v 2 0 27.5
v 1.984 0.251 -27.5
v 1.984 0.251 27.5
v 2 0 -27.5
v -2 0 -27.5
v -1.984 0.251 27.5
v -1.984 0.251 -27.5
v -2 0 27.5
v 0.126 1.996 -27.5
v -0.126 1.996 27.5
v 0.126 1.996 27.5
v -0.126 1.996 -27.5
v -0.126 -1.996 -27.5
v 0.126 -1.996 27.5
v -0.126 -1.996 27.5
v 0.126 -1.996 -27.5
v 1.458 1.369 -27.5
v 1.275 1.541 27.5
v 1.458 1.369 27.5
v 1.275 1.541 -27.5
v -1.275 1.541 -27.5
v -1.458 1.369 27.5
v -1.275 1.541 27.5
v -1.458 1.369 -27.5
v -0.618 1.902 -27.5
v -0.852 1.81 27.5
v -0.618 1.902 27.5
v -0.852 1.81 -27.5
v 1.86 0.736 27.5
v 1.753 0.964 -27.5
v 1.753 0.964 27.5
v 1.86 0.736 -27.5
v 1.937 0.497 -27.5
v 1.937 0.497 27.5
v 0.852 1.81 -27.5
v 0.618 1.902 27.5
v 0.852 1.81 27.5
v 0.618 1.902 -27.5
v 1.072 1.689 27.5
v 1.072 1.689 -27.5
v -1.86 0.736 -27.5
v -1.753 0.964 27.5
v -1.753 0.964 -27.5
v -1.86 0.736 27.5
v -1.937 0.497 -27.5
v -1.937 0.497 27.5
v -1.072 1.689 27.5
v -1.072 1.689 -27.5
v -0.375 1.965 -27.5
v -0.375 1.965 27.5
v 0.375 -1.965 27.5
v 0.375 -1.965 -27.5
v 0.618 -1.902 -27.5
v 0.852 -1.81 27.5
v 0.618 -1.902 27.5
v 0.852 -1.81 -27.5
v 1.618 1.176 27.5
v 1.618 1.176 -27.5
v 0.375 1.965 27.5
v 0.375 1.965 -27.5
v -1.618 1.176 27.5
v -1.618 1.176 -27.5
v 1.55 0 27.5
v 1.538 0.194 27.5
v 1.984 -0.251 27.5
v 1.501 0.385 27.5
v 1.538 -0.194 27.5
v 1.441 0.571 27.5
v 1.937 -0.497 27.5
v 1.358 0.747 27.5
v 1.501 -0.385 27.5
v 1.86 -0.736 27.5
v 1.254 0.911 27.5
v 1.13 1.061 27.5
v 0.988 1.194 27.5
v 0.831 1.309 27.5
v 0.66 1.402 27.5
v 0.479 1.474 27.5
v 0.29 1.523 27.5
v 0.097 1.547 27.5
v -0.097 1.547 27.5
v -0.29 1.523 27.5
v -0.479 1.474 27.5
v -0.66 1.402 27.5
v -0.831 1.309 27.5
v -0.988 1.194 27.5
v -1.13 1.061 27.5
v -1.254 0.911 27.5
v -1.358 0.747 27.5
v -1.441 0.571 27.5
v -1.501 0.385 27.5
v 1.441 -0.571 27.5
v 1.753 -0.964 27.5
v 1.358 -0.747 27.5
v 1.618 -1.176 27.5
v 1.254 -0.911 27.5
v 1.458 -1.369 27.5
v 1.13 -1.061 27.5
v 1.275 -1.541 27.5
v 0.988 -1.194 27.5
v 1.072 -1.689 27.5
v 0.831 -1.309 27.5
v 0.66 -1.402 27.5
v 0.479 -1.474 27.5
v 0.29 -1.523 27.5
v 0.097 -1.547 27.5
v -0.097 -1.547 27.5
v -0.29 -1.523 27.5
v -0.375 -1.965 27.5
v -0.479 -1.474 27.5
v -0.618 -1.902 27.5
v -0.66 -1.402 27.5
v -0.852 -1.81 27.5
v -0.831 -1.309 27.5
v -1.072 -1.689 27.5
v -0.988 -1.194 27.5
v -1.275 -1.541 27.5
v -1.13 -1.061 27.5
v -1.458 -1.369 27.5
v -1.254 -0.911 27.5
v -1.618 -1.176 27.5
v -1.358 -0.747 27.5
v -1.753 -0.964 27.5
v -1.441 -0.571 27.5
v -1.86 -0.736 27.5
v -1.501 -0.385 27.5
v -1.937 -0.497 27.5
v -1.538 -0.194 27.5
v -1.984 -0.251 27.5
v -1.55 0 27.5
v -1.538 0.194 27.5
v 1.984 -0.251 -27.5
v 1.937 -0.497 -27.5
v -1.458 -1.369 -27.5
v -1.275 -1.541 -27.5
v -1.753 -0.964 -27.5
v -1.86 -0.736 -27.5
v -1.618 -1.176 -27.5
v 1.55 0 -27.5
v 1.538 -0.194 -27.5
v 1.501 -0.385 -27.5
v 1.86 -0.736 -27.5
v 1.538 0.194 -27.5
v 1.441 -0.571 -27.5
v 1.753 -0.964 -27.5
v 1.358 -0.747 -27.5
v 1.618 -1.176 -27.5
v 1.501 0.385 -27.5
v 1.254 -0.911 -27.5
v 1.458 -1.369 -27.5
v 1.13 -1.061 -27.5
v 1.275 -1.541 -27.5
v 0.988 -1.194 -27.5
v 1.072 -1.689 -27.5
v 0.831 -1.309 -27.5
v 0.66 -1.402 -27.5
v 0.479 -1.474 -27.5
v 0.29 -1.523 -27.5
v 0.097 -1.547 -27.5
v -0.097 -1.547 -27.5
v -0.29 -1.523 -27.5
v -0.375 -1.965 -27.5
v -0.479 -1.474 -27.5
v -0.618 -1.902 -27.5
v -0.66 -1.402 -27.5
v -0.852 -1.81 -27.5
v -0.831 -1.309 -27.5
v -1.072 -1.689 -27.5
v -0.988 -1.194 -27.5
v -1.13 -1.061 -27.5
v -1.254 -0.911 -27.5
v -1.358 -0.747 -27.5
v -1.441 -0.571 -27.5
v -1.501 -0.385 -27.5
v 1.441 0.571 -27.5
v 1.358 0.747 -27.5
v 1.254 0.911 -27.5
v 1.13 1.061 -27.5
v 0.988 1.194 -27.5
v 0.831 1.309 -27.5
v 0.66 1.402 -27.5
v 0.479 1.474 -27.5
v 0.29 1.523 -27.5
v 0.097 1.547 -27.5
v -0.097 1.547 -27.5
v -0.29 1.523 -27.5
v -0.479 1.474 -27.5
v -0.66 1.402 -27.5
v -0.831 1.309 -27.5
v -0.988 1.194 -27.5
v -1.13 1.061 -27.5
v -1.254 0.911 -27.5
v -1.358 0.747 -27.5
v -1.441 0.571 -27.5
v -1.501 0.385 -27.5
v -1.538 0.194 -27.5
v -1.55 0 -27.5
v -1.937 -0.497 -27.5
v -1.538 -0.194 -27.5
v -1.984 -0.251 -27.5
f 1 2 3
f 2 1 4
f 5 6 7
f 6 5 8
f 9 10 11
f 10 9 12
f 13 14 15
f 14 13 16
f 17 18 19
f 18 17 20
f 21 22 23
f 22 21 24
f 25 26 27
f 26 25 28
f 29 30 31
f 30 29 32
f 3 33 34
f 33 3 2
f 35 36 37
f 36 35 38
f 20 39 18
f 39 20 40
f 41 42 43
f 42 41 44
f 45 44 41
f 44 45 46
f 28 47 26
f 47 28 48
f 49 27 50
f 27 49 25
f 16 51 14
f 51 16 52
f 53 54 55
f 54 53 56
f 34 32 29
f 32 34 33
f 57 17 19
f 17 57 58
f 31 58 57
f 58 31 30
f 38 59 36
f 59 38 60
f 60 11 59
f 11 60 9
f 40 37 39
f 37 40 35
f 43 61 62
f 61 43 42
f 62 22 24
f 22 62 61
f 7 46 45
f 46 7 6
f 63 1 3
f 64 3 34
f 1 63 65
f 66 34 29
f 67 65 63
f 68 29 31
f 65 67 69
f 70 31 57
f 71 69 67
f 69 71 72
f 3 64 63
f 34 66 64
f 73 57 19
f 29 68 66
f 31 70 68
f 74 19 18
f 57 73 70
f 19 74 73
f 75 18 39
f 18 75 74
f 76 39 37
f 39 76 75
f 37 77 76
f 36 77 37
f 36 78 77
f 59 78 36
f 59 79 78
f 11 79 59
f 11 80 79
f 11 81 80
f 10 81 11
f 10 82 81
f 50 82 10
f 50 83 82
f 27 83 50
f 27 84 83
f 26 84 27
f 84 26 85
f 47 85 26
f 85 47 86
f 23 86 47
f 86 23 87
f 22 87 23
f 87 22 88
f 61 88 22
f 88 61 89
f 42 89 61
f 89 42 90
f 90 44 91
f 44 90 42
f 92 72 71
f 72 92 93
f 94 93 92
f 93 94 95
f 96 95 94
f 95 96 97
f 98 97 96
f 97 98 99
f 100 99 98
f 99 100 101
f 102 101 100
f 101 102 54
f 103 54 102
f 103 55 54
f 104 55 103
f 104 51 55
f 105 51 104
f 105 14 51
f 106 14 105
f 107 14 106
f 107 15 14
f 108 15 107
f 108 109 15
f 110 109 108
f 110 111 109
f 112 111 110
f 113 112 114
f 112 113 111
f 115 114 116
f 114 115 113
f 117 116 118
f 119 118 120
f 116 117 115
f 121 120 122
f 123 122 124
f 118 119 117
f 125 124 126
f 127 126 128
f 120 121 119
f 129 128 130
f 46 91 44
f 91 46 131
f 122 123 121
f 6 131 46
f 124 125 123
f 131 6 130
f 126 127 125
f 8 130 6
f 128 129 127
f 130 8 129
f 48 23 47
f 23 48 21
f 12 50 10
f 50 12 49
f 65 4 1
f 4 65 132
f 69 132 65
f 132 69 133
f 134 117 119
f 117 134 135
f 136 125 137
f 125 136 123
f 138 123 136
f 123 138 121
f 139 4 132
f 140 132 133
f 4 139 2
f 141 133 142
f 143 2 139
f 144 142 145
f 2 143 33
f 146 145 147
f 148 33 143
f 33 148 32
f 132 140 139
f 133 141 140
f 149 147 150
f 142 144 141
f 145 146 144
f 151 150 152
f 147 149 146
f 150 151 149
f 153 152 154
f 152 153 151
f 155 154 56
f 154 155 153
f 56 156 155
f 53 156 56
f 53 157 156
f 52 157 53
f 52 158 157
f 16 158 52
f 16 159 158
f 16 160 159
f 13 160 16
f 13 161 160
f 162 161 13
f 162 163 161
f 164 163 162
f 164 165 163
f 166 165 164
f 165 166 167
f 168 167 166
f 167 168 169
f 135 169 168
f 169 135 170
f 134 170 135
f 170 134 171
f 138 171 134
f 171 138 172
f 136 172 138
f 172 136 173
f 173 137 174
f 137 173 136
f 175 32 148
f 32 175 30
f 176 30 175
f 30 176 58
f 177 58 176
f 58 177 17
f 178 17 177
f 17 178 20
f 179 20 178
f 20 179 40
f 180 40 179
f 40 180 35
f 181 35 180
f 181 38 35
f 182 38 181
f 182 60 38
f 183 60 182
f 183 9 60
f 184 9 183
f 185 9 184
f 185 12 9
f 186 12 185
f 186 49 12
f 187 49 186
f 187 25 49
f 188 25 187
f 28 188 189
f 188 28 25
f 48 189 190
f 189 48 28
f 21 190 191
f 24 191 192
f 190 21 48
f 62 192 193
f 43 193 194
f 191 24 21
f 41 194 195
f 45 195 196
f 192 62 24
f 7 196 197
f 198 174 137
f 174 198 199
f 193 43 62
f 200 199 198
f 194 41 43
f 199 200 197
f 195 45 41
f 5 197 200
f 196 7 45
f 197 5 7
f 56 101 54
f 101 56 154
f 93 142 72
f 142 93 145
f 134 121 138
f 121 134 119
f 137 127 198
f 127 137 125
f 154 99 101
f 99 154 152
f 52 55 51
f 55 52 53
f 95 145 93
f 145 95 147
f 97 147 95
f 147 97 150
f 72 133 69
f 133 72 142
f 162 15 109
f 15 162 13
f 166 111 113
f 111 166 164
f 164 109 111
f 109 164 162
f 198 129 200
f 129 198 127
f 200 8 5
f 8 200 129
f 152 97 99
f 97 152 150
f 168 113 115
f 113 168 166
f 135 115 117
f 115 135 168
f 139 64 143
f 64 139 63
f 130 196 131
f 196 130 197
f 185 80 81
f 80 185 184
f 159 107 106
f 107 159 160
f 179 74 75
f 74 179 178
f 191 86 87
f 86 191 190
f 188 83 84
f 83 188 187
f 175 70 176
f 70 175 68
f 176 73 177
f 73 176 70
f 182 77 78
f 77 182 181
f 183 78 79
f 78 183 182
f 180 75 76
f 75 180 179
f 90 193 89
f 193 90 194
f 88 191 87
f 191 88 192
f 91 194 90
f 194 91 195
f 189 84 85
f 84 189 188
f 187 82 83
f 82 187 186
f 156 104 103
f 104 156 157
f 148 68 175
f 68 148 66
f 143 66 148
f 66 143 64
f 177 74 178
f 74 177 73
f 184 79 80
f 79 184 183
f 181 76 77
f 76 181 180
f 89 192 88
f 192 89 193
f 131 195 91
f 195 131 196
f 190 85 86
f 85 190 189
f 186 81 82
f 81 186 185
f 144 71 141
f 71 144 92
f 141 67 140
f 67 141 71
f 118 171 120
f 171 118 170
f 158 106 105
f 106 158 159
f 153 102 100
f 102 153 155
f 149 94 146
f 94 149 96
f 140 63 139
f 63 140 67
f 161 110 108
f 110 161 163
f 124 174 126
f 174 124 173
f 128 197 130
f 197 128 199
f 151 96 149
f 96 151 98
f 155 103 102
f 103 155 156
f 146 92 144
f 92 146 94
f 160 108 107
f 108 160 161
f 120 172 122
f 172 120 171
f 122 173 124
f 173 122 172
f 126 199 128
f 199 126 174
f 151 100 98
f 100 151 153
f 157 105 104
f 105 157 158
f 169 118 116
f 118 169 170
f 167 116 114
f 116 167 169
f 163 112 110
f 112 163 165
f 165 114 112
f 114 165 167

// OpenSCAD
$fn = 50;


difference() {
	union() {
		translate(v = [0, 0, -27.5000000000]) {
			cylinder(h = 55, r = 2.0000000000);
		}
	}
	union() {
		translate(v = [0, 0, -100.0000000000]) {
			cylinder(h = 200, r = 1.5500000000);
		}
	}
}
